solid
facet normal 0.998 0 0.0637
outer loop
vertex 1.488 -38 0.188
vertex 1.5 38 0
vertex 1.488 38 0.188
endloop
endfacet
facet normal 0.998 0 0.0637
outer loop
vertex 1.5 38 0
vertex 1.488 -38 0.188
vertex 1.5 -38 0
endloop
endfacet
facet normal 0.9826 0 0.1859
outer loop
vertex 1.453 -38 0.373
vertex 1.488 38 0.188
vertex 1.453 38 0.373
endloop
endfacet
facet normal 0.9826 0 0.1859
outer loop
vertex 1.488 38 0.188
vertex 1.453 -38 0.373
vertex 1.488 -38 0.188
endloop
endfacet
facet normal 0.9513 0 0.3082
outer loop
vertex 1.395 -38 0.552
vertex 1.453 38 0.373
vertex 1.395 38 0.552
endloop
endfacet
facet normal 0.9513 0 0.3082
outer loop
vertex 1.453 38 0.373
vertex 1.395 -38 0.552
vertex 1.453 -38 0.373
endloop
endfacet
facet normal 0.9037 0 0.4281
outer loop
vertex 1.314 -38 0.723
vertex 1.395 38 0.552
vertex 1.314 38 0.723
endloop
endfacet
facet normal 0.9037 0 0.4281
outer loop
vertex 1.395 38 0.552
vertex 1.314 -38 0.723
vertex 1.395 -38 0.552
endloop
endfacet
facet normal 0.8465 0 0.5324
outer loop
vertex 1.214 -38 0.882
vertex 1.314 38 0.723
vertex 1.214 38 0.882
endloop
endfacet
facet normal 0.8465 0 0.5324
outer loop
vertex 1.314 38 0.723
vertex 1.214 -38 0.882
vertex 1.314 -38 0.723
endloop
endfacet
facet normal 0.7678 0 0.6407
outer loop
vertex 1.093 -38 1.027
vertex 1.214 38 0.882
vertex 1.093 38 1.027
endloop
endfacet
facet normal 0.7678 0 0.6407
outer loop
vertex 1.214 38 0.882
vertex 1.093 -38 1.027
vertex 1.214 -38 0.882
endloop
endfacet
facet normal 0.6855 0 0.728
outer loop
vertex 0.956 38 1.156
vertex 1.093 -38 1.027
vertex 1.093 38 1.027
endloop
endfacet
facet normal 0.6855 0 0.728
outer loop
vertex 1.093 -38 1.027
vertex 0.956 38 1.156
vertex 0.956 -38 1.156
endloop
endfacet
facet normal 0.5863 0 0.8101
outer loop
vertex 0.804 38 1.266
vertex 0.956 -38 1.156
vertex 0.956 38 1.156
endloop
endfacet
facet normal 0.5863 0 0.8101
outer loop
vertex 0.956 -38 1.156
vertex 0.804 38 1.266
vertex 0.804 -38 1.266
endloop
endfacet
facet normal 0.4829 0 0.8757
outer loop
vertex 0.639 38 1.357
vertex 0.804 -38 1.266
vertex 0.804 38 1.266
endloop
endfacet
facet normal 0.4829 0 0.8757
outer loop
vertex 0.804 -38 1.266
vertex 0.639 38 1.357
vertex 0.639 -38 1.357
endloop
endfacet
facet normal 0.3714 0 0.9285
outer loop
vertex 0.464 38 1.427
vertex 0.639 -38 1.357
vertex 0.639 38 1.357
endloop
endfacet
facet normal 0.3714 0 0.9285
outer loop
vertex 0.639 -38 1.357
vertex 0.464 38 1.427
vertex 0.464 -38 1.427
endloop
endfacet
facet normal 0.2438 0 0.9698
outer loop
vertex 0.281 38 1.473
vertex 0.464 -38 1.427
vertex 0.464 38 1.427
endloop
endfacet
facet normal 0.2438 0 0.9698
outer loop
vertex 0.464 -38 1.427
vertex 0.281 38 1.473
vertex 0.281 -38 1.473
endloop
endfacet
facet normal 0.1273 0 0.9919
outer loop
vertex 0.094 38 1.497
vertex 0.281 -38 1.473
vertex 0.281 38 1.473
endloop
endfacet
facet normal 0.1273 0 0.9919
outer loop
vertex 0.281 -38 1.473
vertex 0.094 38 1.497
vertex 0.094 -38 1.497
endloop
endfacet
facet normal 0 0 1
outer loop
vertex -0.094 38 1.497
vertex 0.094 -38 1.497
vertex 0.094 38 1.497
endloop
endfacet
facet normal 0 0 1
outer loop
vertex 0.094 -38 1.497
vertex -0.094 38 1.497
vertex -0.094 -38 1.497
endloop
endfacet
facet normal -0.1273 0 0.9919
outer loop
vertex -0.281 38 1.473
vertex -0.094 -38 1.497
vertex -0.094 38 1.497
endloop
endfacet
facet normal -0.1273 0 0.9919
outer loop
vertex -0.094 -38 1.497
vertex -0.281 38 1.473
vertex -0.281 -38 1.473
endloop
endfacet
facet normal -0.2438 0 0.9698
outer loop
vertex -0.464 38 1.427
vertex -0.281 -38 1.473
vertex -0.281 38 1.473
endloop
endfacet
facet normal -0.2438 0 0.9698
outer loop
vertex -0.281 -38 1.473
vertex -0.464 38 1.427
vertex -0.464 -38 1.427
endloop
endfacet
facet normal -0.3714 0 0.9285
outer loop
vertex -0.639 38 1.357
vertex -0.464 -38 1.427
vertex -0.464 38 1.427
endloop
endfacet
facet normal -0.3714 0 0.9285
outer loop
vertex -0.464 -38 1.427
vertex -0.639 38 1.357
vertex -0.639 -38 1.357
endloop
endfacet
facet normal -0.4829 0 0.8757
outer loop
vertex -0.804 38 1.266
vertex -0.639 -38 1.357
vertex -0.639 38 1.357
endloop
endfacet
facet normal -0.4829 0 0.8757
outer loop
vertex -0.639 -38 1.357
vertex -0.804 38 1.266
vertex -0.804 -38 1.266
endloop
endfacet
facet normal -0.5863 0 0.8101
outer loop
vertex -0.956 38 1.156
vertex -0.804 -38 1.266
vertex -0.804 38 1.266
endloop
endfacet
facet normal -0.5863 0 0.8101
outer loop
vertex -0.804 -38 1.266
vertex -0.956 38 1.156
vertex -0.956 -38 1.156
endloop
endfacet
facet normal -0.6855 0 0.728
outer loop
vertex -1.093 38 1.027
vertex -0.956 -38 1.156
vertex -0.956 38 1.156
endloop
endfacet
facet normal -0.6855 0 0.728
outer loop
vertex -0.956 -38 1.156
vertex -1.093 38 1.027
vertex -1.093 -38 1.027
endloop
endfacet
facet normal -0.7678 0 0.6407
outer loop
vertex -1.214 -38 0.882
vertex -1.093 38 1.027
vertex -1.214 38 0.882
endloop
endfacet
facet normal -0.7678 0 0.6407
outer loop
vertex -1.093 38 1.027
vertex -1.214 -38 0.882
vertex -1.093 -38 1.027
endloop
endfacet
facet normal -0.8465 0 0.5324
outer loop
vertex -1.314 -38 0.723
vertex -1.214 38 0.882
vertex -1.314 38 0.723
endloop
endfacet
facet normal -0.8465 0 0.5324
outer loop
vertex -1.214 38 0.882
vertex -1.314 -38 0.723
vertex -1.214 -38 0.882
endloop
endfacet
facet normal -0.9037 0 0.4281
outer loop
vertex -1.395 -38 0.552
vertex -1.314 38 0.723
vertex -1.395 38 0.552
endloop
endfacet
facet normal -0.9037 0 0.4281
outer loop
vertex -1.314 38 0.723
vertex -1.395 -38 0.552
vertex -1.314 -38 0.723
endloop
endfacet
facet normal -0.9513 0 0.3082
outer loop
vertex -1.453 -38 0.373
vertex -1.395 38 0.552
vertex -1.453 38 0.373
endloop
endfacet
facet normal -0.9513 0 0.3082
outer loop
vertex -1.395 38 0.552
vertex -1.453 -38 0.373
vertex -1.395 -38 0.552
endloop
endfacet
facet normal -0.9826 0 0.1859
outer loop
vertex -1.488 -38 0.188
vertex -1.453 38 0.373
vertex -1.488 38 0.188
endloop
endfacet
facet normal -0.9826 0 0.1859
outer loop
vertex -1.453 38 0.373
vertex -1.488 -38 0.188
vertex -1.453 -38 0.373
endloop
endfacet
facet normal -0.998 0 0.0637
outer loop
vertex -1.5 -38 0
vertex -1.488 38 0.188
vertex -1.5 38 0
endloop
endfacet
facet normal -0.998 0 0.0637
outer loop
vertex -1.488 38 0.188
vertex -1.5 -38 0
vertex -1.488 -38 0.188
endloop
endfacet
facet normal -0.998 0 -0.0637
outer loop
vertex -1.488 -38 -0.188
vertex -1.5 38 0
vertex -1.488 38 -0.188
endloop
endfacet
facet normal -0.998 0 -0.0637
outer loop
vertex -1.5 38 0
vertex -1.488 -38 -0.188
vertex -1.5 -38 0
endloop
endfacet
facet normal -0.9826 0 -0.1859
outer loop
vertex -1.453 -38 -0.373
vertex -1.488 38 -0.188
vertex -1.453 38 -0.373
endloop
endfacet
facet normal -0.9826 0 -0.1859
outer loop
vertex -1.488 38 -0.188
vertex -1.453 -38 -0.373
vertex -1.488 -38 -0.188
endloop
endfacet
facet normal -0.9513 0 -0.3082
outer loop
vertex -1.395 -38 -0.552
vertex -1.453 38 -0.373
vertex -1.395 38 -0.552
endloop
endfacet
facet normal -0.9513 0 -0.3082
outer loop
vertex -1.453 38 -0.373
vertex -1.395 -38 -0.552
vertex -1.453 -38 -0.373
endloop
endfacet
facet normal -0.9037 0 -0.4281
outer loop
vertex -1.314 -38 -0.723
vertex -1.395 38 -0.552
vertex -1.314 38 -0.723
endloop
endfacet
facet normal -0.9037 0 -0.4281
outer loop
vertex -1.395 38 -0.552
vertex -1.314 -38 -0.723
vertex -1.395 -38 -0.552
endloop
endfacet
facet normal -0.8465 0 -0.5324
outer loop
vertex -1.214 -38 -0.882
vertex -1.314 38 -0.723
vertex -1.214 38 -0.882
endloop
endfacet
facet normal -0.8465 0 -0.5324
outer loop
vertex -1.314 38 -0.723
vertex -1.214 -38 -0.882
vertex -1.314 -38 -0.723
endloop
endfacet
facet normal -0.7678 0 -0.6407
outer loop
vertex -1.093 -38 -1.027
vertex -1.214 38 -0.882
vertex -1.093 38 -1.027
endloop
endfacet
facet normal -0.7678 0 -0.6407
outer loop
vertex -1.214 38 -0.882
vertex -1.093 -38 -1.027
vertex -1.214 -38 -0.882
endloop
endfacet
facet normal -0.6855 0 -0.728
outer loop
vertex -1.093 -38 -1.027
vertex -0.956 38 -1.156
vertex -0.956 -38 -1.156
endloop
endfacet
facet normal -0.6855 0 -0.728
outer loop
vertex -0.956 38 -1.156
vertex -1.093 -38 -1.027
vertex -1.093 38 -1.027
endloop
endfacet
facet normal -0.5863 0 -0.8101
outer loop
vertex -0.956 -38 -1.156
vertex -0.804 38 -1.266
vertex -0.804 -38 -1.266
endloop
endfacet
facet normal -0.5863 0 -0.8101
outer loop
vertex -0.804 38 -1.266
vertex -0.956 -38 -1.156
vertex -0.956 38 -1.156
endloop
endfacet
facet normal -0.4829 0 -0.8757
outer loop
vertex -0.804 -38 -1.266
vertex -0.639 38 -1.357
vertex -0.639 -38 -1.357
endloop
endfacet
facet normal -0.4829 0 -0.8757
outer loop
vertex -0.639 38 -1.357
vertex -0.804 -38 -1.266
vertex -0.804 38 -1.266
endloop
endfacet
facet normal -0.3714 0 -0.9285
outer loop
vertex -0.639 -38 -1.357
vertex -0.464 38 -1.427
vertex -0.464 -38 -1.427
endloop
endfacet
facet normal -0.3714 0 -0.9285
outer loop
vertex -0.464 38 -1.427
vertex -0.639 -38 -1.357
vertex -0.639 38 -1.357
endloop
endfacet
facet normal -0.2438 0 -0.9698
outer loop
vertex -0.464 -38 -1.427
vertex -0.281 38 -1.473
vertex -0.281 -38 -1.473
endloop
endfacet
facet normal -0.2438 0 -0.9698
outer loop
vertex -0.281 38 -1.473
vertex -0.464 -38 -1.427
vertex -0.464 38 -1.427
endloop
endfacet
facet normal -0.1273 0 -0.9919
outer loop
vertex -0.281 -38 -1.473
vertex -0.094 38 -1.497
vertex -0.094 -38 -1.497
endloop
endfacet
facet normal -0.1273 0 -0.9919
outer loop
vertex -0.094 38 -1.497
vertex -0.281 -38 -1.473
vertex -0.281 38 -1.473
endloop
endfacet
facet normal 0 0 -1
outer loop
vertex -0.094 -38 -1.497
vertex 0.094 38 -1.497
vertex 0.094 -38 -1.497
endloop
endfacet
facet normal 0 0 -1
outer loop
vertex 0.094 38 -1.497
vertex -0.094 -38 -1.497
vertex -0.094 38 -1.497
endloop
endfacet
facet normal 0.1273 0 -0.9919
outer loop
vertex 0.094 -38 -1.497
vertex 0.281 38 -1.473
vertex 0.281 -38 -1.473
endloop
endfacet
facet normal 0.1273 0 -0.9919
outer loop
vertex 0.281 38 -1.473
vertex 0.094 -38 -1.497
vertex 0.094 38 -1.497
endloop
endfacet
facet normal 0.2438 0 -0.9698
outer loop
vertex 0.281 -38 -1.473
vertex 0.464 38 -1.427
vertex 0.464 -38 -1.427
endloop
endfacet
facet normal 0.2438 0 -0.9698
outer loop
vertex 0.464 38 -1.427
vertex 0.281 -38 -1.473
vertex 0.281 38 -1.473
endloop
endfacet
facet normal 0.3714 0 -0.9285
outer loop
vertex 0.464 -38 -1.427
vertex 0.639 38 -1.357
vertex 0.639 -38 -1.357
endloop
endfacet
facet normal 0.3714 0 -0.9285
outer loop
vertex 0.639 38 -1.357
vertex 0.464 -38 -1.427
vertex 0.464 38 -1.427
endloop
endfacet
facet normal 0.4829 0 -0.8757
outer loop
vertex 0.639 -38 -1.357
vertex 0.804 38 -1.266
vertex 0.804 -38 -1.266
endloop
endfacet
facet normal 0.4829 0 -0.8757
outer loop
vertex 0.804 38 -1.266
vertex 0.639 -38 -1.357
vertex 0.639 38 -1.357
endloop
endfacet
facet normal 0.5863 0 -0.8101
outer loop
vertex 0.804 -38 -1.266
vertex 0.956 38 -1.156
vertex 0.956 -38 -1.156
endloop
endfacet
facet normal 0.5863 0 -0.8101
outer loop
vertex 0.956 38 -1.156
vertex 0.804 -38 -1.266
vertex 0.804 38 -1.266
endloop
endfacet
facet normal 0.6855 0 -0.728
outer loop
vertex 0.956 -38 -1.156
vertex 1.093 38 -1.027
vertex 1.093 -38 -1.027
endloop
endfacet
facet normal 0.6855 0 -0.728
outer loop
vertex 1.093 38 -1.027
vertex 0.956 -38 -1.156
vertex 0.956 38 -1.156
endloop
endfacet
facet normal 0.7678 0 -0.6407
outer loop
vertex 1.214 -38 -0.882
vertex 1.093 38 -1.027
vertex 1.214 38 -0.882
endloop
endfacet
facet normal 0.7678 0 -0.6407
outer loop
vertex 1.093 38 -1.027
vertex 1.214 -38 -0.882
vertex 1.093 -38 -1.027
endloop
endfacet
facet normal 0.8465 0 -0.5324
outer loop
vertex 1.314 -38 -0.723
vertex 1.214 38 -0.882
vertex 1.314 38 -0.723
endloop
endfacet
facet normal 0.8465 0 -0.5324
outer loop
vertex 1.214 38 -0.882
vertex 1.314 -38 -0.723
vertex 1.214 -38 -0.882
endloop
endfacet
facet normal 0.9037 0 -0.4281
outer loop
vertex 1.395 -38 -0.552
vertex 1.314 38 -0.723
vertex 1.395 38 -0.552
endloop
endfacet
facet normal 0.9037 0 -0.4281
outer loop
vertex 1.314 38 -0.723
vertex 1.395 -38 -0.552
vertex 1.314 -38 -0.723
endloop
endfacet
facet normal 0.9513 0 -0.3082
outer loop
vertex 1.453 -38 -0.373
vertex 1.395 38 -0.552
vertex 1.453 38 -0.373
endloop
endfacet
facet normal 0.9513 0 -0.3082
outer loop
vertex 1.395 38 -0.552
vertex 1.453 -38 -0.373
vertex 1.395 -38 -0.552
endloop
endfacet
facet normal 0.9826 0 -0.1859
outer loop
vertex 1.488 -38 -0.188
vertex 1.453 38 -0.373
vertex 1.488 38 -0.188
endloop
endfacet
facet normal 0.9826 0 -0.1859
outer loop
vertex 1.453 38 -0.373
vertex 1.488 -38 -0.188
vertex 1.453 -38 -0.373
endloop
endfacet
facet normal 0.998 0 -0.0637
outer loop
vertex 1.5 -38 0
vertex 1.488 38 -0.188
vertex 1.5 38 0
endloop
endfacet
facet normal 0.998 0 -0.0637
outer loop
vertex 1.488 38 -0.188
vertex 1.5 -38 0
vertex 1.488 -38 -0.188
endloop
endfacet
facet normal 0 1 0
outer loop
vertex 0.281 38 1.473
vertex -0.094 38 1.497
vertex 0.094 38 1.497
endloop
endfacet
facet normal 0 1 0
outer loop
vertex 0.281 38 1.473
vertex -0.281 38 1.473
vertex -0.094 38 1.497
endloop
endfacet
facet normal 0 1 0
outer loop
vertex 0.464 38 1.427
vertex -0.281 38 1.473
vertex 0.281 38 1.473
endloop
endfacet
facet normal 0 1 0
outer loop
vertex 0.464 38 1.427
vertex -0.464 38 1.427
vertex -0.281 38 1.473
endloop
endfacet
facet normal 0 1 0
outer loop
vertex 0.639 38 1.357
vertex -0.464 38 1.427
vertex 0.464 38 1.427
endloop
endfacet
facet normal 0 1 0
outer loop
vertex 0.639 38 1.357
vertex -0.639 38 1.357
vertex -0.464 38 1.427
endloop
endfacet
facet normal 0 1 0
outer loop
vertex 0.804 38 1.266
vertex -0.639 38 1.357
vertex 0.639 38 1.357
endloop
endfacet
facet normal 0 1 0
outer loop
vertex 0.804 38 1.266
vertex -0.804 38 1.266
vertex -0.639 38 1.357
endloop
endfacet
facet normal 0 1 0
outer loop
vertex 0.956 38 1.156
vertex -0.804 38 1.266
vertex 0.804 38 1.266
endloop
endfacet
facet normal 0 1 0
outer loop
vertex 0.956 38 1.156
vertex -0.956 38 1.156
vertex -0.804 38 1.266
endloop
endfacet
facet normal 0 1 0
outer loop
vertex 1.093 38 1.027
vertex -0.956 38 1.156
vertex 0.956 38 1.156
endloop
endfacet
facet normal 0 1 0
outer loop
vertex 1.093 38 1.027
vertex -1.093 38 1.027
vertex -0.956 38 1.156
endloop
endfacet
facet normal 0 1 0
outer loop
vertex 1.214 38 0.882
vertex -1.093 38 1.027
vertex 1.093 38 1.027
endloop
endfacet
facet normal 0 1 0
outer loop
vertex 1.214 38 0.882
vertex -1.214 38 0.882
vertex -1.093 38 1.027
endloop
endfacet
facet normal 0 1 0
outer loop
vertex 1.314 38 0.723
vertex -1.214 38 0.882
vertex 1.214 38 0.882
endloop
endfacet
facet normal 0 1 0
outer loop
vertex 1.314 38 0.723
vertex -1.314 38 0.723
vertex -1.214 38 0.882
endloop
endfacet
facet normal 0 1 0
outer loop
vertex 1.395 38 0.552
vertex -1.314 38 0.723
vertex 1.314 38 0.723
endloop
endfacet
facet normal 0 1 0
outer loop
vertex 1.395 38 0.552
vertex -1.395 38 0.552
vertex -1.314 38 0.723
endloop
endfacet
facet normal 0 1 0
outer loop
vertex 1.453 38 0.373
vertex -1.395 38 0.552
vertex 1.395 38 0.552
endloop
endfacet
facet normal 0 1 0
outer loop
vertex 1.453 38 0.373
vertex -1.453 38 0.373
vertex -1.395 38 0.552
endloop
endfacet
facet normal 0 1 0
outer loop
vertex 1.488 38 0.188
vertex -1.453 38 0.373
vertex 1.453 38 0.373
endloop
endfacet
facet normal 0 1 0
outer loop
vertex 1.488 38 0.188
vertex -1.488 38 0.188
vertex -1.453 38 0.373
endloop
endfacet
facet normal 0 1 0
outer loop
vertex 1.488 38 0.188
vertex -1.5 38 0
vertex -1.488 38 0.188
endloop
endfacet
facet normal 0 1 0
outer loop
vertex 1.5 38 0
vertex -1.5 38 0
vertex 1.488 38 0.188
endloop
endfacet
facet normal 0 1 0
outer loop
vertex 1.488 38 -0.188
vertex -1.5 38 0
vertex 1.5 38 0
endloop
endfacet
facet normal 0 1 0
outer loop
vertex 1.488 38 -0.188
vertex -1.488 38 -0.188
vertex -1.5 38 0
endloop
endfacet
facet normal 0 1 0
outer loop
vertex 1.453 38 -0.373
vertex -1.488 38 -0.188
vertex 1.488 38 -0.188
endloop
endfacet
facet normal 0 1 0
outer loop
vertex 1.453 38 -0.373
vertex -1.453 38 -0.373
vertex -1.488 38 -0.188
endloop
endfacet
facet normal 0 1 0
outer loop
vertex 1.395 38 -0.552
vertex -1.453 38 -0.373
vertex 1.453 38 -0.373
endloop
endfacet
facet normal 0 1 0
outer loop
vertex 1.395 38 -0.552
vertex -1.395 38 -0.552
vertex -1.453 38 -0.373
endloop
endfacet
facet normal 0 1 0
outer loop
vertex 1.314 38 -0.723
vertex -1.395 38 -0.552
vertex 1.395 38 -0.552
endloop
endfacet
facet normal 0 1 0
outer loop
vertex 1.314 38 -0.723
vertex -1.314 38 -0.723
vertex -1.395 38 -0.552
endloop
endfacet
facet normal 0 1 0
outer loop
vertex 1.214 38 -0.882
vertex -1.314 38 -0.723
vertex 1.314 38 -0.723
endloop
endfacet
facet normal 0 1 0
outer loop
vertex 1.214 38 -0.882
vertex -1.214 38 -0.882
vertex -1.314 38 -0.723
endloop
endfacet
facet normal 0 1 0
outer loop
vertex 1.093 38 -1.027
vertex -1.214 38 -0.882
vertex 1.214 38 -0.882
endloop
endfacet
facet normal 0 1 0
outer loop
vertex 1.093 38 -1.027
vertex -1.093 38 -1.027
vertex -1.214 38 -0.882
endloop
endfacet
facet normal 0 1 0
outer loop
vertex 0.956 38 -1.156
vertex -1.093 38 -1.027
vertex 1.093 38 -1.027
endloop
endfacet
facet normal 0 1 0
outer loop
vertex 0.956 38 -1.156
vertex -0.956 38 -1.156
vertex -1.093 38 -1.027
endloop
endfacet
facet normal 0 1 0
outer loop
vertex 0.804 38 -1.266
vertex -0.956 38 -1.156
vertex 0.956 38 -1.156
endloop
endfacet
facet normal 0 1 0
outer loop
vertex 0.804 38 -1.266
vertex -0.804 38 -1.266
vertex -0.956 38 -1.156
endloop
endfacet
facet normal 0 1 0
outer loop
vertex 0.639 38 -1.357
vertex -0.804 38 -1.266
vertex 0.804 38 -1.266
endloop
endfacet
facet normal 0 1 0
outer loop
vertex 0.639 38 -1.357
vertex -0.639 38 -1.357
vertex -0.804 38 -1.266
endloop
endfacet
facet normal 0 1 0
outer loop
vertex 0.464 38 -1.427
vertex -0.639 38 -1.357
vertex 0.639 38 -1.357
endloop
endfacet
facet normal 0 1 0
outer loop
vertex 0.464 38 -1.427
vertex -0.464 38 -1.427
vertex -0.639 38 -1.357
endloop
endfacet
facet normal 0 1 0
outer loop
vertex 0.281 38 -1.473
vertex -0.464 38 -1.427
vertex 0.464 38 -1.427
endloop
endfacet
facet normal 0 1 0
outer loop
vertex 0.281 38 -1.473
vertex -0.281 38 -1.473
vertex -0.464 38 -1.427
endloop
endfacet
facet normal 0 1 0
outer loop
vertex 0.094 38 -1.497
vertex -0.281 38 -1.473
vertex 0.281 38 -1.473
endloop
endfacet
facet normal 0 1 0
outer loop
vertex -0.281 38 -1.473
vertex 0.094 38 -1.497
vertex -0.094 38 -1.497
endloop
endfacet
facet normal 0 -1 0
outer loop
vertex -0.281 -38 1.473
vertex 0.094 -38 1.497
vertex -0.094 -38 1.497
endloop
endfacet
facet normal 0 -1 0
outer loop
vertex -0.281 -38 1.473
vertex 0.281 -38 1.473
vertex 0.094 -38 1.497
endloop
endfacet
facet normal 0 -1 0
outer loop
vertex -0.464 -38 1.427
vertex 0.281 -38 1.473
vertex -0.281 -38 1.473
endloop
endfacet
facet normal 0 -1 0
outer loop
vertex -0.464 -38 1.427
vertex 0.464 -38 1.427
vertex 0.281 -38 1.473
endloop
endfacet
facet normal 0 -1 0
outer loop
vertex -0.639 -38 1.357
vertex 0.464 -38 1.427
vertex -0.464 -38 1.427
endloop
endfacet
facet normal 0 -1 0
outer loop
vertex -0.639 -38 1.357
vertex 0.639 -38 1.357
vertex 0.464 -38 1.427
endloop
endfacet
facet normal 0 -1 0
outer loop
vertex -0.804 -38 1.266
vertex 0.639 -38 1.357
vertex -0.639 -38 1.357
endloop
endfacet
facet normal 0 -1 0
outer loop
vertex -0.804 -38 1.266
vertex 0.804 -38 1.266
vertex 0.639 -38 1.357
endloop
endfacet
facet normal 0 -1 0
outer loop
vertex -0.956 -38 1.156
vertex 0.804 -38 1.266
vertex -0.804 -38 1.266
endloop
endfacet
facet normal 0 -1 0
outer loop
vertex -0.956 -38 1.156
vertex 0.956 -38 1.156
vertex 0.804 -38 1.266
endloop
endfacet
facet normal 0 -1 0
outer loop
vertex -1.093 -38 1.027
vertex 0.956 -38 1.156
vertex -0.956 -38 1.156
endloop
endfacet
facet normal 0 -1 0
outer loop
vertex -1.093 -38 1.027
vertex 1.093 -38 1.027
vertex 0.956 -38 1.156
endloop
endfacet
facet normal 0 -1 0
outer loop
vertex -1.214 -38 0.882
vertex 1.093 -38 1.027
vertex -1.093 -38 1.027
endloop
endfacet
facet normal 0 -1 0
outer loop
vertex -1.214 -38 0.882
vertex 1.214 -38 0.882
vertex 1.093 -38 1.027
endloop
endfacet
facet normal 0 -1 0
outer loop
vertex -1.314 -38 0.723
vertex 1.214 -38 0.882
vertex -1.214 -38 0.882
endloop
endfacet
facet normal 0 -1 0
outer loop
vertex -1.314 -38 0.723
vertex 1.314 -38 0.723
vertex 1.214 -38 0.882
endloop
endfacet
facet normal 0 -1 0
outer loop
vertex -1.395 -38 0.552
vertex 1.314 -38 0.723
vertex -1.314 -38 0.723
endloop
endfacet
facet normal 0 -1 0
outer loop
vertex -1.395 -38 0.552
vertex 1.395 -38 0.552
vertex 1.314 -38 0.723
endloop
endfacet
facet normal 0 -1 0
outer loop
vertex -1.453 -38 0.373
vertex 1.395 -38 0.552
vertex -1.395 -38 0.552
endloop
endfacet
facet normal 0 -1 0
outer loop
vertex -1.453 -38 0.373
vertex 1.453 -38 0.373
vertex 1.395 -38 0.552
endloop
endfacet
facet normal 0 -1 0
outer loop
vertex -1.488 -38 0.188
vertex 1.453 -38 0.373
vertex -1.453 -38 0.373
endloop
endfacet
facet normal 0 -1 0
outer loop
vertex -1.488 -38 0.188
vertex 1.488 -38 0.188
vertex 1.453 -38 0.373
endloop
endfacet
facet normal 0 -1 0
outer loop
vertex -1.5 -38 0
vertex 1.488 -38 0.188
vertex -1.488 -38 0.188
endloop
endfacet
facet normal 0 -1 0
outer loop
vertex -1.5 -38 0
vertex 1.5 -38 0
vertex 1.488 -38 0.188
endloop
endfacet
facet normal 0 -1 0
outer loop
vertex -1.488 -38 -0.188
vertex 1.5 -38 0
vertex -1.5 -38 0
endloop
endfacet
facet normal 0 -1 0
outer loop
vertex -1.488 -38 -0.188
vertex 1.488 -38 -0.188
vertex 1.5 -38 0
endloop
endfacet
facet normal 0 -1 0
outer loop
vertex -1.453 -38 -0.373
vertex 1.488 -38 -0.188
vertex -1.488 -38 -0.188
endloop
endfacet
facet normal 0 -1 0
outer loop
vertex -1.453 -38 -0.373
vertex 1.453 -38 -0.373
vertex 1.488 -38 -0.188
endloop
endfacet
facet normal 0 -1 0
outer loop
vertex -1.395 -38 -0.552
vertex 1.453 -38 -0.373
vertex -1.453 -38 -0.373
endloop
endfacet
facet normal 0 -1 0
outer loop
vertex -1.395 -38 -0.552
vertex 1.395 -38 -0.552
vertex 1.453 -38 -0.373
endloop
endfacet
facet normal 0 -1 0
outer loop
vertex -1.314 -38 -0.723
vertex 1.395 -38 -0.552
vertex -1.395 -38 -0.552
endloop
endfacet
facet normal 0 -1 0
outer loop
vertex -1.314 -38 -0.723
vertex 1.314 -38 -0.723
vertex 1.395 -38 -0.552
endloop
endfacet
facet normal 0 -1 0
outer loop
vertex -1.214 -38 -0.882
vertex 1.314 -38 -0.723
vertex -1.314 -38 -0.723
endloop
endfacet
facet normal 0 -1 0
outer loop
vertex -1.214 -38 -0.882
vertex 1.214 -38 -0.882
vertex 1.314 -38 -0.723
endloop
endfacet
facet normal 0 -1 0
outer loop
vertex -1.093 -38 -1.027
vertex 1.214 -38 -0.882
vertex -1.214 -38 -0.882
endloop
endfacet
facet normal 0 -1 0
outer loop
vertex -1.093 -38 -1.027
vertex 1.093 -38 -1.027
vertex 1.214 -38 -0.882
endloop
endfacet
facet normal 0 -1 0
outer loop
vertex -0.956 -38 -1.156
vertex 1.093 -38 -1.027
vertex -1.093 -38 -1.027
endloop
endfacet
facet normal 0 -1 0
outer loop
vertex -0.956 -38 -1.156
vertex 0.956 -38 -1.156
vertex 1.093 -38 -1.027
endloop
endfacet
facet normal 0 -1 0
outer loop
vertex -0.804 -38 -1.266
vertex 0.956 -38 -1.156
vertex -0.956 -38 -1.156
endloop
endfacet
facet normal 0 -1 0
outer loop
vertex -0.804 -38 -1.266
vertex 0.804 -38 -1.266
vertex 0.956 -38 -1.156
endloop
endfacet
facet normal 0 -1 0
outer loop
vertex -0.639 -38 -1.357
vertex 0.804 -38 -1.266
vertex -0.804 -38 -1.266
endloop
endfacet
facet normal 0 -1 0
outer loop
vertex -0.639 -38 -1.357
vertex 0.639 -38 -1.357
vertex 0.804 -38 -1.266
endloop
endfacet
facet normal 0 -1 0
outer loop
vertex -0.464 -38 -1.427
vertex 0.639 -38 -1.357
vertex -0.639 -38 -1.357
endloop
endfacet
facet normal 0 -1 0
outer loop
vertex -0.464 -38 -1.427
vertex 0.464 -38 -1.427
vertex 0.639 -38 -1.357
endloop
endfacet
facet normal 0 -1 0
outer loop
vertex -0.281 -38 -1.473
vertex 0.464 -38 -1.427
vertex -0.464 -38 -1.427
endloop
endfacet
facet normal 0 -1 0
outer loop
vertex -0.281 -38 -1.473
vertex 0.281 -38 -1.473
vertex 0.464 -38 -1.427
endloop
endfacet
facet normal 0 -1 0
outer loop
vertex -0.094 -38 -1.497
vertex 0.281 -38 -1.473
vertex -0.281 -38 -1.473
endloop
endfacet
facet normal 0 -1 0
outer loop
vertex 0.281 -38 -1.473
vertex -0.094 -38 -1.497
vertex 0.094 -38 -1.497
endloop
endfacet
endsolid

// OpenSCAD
$fn = 50;
height = 80;
width = 12;
length = 220;
error = 0.5;

module hole(length, height, width) {
    rotate(90, [1,0,0])   
    cylinder(h=height - 4, r=width/6 - error, center=true);
    }
    
hole(length, height, width);
